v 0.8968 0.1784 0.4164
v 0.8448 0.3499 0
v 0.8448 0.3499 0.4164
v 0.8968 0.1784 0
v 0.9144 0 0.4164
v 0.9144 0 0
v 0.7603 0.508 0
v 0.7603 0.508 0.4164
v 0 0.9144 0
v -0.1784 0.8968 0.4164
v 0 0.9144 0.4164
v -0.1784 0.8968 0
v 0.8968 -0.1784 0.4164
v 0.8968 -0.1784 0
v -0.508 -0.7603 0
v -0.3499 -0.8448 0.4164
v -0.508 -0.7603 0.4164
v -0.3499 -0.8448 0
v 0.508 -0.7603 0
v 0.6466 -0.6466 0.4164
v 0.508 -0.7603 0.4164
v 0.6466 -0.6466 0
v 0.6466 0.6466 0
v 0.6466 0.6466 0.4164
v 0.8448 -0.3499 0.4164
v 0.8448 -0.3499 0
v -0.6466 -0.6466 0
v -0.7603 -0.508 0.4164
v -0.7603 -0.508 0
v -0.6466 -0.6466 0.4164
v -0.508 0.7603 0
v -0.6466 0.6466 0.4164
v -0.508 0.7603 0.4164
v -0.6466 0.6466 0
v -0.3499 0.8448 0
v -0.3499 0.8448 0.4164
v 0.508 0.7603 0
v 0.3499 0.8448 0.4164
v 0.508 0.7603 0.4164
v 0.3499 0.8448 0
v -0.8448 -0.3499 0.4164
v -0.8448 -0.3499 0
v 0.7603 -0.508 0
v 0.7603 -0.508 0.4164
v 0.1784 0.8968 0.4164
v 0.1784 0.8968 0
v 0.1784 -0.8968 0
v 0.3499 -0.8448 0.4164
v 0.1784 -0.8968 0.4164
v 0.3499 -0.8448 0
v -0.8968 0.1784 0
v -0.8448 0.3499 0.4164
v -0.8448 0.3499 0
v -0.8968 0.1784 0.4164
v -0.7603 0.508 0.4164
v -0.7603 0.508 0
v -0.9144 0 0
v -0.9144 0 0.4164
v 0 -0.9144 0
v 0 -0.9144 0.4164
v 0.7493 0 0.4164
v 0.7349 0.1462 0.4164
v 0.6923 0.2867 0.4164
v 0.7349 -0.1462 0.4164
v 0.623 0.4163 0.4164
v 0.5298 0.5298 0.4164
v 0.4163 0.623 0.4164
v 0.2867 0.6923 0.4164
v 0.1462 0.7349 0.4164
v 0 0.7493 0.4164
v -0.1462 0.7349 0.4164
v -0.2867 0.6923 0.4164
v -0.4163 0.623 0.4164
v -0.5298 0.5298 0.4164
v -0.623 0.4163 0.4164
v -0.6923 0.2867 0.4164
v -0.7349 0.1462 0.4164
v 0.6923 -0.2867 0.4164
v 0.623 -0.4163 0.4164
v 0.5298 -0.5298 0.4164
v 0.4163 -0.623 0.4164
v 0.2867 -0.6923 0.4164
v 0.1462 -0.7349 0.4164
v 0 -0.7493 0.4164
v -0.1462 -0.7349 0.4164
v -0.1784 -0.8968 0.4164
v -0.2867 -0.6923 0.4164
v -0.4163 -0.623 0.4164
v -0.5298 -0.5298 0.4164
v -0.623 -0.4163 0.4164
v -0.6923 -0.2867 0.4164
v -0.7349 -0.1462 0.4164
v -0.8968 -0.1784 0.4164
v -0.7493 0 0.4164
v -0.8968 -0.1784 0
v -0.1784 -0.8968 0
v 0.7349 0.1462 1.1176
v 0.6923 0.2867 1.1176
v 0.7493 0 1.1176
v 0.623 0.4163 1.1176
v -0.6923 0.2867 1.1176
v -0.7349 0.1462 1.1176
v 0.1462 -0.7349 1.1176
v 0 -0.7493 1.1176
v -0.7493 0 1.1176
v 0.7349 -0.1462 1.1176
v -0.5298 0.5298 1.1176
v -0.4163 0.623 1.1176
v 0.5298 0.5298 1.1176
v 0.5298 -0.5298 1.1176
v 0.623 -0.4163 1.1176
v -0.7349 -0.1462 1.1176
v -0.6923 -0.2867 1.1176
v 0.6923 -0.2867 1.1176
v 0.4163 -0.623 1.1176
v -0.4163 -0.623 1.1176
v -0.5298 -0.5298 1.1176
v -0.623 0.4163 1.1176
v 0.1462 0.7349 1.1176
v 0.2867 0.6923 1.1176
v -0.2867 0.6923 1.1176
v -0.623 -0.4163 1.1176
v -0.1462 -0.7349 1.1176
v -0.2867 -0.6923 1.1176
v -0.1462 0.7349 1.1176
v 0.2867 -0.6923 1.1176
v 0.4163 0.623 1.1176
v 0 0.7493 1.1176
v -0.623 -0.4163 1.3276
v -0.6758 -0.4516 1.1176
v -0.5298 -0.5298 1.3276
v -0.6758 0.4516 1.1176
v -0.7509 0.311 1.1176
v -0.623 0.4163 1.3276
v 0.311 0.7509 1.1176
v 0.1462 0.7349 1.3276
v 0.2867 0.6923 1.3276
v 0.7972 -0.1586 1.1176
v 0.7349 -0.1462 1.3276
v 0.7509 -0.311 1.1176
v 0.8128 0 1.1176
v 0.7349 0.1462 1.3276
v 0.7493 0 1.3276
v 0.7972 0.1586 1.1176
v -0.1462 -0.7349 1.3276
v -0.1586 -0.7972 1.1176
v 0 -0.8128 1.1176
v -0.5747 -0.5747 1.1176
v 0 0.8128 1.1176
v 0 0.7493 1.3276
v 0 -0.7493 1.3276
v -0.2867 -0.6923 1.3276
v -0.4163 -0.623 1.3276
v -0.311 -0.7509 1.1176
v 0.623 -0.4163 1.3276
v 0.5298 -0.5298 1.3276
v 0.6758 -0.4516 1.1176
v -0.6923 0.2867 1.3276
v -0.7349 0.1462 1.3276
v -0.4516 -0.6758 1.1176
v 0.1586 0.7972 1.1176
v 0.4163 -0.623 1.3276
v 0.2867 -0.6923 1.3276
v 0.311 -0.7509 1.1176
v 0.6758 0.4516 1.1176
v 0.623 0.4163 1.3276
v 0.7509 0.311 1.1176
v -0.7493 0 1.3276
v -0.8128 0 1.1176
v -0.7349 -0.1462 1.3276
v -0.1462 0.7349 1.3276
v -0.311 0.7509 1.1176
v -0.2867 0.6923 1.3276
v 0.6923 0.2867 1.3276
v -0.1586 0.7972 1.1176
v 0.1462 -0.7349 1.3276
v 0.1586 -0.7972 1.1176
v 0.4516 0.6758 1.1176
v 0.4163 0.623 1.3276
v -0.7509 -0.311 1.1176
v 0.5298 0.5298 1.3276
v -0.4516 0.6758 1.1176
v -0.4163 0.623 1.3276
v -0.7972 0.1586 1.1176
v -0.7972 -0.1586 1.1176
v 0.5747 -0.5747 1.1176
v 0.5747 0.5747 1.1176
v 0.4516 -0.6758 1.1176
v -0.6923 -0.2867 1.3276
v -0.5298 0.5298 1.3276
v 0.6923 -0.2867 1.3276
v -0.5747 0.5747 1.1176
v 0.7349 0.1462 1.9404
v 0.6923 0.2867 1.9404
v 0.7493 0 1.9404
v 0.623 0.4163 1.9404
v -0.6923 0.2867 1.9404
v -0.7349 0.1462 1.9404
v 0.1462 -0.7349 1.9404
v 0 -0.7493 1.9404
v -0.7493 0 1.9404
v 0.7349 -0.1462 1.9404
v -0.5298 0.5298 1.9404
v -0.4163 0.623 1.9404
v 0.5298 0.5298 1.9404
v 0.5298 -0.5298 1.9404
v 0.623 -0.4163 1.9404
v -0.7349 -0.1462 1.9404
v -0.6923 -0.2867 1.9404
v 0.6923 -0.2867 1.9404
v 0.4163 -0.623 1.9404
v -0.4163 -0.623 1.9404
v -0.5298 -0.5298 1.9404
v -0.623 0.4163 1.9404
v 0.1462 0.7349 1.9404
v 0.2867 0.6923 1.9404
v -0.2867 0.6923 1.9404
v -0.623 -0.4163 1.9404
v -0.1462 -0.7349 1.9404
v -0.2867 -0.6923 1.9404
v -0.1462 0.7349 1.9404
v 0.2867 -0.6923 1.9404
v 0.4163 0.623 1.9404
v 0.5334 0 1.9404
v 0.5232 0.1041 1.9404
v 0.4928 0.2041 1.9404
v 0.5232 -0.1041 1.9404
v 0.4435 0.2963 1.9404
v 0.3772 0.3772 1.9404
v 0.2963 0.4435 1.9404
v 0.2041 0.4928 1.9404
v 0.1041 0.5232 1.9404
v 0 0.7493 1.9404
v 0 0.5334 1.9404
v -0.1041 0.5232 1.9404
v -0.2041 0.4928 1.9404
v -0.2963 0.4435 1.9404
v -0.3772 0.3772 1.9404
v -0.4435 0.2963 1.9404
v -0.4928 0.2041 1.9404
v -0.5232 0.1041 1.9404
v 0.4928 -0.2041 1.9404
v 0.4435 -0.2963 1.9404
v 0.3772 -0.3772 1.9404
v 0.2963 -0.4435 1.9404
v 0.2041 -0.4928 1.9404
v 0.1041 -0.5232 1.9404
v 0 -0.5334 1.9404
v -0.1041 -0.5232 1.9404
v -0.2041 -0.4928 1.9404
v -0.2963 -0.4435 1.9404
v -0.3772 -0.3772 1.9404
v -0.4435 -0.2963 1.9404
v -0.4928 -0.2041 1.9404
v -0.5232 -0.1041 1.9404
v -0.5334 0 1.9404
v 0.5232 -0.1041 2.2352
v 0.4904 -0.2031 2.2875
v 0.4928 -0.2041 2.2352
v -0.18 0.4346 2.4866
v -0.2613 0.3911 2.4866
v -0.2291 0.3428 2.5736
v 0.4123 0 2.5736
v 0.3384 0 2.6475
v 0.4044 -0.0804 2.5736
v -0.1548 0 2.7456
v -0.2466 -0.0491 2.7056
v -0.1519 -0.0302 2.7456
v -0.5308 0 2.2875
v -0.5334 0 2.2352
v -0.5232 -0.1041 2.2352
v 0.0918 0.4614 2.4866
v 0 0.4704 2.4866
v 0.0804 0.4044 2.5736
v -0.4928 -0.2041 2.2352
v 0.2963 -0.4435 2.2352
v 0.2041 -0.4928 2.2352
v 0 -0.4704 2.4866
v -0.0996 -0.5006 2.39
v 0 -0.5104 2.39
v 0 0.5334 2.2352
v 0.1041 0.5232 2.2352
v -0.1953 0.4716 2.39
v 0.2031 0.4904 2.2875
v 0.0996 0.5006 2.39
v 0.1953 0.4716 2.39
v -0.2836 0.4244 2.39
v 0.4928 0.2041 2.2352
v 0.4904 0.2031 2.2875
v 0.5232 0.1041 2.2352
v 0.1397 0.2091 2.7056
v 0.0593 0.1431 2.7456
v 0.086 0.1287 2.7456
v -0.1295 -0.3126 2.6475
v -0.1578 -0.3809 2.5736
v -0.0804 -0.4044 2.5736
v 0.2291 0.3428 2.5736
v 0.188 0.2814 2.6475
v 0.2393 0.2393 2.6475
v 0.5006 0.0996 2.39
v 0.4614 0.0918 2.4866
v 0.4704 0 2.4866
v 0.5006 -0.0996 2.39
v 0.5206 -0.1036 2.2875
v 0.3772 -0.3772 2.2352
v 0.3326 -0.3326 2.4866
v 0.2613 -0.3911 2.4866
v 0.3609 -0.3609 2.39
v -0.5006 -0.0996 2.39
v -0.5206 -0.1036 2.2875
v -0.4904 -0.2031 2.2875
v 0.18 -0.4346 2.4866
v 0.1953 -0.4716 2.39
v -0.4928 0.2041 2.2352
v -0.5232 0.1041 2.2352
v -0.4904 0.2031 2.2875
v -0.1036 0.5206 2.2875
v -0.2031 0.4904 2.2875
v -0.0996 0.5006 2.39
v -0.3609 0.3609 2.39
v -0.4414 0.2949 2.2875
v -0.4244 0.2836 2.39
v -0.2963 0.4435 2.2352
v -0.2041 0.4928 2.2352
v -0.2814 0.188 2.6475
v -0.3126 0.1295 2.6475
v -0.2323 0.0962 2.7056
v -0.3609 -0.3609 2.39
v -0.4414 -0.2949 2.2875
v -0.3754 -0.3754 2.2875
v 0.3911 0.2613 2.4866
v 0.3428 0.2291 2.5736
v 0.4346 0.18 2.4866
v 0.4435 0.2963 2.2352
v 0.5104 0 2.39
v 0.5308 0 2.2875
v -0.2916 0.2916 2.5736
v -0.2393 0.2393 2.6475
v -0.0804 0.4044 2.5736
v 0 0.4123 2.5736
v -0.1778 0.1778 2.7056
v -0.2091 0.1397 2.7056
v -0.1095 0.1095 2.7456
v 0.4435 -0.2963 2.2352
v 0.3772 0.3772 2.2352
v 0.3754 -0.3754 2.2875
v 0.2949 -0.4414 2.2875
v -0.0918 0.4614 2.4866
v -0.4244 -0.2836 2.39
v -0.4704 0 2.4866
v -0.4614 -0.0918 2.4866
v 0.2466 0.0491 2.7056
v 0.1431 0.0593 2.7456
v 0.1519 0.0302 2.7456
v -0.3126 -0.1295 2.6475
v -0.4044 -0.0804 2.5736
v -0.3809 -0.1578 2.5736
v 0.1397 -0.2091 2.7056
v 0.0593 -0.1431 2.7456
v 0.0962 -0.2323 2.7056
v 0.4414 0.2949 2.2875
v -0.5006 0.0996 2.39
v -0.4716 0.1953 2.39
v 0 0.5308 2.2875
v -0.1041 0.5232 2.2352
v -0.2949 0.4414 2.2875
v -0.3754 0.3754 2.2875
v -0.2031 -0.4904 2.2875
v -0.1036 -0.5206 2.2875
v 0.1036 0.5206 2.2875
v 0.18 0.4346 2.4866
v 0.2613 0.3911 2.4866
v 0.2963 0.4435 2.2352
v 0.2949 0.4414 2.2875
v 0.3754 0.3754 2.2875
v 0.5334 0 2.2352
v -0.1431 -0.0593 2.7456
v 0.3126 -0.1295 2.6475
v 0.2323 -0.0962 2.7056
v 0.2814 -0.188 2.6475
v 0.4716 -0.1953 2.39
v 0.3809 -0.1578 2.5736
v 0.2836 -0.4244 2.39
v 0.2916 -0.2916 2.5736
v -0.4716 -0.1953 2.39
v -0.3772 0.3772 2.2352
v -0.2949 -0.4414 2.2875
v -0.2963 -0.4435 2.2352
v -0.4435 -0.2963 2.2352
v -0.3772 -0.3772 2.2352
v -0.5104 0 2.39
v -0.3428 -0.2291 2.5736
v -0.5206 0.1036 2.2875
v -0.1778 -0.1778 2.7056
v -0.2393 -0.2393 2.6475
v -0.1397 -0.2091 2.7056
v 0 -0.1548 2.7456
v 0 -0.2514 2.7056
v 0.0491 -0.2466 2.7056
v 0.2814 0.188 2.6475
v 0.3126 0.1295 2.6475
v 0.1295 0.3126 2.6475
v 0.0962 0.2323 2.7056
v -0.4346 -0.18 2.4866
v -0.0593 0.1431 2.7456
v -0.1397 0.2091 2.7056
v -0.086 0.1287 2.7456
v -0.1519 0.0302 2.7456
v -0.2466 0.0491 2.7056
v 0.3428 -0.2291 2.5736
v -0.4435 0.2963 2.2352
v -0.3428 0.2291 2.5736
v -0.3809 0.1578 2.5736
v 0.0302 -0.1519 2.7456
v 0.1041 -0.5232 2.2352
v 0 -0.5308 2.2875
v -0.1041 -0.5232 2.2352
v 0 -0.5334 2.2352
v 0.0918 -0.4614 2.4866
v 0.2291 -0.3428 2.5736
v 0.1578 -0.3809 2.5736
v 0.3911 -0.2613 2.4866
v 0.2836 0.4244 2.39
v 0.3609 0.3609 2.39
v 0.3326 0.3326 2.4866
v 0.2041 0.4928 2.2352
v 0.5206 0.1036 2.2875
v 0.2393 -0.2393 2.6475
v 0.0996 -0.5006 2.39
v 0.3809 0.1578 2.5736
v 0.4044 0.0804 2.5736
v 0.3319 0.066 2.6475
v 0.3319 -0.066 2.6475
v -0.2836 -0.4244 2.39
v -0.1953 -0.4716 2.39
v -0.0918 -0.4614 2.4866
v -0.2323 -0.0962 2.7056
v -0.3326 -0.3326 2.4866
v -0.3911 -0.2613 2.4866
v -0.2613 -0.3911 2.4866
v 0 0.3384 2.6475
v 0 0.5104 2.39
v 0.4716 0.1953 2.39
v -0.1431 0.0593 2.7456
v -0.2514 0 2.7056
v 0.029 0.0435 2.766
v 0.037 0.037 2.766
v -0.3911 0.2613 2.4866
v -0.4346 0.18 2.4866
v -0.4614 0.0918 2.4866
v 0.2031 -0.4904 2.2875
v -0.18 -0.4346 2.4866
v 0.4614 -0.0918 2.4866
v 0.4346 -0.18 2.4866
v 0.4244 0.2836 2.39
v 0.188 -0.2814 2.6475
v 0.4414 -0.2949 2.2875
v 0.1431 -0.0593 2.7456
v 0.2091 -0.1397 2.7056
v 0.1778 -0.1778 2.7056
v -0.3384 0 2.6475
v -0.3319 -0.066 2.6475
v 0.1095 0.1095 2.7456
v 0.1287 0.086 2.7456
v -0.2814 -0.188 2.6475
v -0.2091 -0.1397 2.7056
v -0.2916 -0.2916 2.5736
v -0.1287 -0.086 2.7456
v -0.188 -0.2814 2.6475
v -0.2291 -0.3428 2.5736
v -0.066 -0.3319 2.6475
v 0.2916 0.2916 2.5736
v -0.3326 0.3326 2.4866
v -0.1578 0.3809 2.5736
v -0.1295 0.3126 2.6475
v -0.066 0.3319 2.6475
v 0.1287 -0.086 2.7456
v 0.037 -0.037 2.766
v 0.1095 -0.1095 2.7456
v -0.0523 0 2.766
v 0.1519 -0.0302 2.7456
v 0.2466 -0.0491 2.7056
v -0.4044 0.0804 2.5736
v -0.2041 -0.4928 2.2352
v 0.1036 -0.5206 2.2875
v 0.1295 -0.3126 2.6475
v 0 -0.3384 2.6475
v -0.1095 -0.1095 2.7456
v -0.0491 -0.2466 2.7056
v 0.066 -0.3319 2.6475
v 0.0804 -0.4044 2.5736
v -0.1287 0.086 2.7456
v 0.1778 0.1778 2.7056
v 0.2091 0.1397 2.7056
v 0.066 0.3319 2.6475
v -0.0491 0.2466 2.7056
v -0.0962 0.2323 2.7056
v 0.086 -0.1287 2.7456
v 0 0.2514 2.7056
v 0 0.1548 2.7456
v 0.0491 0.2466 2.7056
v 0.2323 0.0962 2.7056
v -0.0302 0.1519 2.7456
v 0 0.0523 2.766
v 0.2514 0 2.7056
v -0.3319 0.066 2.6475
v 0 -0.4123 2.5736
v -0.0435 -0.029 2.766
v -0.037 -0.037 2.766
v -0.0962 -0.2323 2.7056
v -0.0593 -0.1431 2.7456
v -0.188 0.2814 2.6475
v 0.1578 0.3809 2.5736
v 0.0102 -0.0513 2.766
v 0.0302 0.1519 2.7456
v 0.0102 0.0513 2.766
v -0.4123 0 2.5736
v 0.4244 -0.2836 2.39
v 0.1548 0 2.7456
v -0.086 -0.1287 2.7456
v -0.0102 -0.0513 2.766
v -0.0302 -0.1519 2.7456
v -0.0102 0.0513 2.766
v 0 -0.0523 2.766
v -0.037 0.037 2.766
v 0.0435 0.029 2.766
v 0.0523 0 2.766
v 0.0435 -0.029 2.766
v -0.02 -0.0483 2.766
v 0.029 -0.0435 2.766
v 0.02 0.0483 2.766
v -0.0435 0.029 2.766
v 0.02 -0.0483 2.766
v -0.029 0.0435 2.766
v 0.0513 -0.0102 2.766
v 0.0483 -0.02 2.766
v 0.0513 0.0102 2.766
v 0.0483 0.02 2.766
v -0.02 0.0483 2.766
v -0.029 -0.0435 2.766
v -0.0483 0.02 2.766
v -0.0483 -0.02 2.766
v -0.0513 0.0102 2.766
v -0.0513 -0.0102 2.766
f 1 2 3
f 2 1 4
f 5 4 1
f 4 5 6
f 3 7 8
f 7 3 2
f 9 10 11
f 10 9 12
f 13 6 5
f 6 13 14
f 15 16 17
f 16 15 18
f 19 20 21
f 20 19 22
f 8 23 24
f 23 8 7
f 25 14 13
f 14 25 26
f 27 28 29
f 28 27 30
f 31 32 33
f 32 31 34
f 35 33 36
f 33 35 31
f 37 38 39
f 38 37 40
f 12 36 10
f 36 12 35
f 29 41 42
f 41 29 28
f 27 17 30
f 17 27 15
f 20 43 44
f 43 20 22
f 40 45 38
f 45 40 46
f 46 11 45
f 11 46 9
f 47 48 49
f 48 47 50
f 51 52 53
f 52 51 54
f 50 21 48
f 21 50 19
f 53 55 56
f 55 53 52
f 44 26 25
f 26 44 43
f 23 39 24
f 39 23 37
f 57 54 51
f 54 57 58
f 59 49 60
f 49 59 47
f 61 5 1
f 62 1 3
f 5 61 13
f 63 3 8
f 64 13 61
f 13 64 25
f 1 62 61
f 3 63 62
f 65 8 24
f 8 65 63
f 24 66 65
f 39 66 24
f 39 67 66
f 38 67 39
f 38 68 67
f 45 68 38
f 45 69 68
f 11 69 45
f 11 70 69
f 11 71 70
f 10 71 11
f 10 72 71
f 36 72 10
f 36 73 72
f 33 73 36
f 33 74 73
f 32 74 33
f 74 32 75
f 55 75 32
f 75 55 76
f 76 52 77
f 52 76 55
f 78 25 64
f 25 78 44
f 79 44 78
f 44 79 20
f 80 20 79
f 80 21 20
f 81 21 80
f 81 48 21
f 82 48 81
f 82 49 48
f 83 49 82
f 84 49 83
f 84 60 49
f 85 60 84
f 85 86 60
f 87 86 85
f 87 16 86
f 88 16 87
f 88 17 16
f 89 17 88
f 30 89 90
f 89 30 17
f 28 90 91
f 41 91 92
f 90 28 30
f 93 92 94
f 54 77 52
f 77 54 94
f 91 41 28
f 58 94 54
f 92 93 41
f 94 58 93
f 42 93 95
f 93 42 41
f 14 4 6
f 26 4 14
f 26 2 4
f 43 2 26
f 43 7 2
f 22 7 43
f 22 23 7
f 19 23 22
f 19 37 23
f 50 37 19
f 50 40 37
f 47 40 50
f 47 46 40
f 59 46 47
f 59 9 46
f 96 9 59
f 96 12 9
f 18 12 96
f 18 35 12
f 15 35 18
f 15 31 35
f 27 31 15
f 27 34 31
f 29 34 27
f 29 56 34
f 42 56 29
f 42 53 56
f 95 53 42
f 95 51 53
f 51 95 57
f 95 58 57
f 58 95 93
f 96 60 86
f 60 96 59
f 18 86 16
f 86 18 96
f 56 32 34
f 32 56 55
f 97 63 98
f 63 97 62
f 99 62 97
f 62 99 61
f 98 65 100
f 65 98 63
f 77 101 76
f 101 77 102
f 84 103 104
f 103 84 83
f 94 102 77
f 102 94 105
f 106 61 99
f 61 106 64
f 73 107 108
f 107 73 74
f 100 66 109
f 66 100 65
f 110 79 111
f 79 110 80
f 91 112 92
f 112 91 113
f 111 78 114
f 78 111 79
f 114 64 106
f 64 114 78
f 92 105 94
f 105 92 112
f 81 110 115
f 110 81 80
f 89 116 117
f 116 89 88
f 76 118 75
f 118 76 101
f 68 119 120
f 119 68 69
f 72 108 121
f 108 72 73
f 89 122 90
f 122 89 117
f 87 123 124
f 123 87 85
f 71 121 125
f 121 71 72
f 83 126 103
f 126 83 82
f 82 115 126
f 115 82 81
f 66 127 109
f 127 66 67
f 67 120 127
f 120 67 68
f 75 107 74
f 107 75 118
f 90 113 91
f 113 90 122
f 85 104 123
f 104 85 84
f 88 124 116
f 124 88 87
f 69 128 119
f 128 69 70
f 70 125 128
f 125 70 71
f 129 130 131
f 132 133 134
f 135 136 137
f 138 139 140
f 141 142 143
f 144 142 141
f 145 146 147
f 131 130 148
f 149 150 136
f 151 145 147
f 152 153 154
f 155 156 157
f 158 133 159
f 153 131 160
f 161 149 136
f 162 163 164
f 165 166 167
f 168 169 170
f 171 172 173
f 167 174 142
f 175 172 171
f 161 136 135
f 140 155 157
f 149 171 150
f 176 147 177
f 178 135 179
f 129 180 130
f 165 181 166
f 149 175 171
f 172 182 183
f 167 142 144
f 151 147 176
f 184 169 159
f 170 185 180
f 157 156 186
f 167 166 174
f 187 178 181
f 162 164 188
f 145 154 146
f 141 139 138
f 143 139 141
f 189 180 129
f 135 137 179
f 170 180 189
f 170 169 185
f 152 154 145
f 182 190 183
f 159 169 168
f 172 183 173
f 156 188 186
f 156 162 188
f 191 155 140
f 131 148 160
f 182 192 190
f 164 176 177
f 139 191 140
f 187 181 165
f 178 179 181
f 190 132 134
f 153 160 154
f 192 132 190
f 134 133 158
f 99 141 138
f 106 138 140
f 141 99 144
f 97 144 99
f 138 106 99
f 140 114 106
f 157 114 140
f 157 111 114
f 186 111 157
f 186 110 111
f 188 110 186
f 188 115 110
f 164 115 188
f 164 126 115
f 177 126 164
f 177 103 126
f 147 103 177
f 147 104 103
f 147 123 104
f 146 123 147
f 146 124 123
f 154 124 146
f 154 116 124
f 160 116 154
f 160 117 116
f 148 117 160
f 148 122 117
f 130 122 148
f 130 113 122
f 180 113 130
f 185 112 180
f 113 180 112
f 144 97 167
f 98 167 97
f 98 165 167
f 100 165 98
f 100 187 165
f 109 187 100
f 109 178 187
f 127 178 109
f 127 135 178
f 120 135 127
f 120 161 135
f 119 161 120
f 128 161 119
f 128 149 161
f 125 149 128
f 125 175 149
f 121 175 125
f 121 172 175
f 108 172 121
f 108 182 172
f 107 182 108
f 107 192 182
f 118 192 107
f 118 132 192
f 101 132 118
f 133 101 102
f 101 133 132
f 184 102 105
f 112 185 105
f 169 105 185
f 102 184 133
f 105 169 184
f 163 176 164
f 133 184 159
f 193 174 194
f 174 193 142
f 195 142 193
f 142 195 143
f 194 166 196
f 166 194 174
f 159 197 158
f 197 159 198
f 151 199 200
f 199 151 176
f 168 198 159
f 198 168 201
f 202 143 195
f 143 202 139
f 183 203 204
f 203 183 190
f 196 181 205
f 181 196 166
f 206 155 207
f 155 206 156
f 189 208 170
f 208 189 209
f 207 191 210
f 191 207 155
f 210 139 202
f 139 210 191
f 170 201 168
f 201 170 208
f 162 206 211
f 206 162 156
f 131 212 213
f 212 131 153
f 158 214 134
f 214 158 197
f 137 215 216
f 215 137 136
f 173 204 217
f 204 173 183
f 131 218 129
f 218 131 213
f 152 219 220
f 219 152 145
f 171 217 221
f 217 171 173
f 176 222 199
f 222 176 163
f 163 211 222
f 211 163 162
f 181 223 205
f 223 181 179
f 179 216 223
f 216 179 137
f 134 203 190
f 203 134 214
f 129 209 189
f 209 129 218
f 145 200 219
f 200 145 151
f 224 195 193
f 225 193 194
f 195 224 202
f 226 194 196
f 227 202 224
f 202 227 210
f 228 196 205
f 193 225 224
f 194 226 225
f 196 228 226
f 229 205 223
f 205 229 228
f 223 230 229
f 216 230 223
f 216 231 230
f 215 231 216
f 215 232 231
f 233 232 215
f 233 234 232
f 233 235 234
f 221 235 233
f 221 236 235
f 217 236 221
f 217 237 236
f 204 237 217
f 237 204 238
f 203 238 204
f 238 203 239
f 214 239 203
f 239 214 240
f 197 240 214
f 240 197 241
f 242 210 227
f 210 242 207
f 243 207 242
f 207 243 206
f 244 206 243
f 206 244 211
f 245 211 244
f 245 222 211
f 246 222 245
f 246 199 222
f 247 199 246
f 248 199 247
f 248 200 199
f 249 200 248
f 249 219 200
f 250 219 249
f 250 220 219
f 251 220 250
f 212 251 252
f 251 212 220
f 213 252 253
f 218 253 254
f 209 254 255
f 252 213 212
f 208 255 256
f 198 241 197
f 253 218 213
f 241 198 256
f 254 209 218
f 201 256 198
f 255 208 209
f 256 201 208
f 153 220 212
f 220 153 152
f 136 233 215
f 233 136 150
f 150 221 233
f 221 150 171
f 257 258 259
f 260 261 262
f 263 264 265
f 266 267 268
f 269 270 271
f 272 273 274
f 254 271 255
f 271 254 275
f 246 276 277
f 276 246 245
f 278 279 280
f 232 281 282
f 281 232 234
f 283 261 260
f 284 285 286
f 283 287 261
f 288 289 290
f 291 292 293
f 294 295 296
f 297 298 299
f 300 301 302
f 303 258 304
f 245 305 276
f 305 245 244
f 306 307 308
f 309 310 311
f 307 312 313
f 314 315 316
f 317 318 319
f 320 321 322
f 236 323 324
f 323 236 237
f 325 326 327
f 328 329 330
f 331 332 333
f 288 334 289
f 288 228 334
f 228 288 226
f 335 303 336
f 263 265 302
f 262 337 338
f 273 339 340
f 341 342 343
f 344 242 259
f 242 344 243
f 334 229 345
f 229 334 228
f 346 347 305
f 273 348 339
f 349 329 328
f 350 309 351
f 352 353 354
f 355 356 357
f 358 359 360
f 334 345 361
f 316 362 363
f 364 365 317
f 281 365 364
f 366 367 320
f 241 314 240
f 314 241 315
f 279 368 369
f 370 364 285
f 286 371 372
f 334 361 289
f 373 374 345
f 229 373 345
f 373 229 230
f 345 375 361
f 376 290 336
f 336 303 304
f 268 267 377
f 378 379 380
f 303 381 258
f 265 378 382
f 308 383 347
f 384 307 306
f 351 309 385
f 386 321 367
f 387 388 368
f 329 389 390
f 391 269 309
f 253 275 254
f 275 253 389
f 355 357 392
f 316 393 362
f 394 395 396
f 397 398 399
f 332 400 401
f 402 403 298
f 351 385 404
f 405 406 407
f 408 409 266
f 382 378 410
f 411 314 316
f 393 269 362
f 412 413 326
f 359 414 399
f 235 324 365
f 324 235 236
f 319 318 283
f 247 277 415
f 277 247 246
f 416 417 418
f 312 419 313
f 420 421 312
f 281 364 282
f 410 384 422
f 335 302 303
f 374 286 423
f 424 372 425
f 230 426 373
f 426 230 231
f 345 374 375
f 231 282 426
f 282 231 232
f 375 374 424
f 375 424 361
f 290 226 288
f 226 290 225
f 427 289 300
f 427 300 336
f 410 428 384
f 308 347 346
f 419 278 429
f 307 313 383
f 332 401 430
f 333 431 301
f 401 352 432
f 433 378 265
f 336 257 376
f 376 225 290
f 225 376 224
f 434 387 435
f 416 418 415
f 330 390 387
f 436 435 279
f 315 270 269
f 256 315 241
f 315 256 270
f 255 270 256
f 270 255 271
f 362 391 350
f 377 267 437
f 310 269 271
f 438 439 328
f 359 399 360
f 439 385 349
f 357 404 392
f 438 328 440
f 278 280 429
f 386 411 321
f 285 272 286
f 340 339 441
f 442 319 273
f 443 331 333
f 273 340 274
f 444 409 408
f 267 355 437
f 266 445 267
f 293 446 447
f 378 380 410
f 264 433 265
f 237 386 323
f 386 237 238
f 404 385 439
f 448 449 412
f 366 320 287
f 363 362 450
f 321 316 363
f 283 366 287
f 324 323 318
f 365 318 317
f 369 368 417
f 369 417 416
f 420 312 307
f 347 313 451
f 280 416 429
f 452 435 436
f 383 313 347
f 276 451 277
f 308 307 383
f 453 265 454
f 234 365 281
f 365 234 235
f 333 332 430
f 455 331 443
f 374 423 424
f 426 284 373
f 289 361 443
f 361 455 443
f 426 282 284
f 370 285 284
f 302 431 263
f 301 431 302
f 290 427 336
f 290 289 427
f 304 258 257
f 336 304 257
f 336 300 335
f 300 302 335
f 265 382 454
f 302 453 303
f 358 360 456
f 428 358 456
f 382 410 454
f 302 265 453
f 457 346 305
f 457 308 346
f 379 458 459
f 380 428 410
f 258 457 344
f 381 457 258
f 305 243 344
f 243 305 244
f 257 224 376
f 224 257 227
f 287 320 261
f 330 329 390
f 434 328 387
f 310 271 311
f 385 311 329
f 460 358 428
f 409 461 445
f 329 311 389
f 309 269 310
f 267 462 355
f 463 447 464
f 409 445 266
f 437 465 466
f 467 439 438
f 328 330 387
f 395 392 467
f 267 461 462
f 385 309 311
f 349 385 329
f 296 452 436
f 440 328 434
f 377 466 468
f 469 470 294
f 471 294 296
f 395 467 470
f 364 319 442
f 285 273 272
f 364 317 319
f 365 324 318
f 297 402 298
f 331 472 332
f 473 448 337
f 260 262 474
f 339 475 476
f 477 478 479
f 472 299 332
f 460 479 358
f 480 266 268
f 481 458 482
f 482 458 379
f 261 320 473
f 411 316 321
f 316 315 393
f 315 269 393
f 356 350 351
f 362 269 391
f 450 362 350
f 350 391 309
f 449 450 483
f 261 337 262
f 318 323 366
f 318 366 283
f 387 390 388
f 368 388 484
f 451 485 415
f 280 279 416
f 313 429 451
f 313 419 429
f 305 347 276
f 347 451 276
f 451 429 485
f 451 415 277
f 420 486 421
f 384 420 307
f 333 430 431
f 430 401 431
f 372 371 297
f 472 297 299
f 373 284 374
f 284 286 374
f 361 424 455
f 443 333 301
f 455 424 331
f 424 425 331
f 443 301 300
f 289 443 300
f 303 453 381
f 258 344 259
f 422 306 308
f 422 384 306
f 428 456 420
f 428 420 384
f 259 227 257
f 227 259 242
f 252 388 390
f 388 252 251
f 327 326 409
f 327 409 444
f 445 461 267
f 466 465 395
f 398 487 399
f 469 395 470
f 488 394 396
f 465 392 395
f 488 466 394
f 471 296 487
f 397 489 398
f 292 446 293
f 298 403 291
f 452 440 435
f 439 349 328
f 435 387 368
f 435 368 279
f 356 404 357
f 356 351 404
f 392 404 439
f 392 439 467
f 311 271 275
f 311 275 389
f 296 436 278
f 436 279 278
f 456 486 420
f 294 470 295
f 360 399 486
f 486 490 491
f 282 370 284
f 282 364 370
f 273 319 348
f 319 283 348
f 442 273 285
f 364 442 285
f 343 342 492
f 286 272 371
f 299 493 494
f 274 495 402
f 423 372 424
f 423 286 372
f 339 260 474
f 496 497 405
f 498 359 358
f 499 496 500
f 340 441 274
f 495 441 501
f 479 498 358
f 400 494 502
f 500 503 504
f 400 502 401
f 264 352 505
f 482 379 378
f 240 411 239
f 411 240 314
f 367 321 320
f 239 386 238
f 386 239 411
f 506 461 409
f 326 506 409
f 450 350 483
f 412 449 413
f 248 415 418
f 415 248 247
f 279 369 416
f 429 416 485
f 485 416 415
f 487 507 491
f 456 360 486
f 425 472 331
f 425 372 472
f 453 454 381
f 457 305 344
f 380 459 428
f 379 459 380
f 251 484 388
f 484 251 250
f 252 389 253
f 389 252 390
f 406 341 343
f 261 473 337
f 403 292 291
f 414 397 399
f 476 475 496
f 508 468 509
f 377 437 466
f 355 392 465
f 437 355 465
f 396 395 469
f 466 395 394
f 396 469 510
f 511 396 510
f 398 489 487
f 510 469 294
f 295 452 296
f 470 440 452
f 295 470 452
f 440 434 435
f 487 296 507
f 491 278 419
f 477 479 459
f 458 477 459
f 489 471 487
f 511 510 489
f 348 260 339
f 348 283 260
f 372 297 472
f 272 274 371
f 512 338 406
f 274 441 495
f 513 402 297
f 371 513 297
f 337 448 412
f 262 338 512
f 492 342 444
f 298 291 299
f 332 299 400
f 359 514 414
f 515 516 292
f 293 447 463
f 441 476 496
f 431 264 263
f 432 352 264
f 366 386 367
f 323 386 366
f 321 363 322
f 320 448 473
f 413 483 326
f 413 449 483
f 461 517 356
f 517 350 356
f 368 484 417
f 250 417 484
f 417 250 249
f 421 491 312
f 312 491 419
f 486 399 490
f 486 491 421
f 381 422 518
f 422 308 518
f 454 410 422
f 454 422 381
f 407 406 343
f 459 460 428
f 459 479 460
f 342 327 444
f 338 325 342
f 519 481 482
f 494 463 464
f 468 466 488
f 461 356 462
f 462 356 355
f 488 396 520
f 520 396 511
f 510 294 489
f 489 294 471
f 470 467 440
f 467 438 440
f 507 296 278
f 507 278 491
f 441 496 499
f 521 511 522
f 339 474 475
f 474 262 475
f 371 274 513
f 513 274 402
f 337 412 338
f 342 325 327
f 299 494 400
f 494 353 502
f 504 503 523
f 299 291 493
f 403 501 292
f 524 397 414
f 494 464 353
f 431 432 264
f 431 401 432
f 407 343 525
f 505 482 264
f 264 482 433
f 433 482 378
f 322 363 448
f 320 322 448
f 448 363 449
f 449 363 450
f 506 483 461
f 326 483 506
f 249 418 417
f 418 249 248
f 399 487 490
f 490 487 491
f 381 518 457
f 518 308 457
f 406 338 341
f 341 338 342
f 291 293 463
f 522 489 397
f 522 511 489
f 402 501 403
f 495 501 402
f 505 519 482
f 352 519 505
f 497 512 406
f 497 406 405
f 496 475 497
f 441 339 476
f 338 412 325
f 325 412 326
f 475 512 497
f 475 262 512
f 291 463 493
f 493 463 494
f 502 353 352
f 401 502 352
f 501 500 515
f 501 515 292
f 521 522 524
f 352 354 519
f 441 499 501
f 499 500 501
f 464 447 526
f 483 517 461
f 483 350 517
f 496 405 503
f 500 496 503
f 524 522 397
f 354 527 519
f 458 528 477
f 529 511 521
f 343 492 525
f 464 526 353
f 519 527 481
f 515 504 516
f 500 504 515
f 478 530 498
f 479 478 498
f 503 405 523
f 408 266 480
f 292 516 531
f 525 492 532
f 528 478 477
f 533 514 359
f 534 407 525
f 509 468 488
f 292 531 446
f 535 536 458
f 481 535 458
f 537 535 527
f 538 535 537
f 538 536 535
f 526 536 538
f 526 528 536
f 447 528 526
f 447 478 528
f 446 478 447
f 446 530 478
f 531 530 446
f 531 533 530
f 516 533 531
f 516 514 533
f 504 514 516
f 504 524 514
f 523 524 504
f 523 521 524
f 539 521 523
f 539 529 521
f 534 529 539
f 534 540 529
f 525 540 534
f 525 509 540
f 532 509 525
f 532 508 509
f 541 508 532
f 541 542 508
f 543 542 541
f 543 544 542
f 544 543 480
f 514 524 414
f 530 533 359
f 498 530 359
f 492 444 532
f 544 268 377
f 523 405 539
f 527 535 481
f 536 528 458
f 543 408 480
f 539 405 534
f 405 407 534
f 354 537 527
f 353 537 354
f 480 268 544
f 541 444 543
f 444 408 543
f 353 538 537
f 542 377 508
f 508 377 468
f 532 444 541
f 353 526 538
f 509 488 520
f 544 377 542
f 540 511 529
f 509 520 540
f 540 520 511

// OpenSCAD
// starting from top of data sheet drawing to bottom

piston_d = 0.042 * 25.4;
neck_d = 0.059 * 25.4;

shoulder_d = 0.064 * 25.4;
trunk_d = neck_d; // not marked on data sheet, assumed
smd_flange_d = 0.072 * 25.4;


piston_h = 0.024 * 25.4; // max stroke, mid stroke is half
neck_h = 0.6128;
shoulder_h = 0.2;
trunk_h = 0.028 * 25.4;
smd_flange_h = 0.016 * 25.4;

ff = 0.01;

$fn=32;

translate([0, 0, 0]) cylinder(d=smd_flange_d, h=smd_flange_h+ff);
translate([0, 0, smd_flange_h]) cylinder(d=trunk_d, h=trunk_h+ff);
translate([0, 0, smd_flange_h + trunk_h]) cylinder(d1=shoulder_d, d2=neck_d, h=shoulder_h+ff);
translate([0, 0, smd_flange_h + trunk_h + shoulder_h]) cylinder(d=neck_d, h=neck_h+ff);
translate([0, 0, smd_flange_h + trunk_h + shoulder_h + neck_h]) {
  hull() {
    cylinder(d=piston_d, h=piston_h/2);
    translate([0, 0, piston_h/2]) sphere(d=piston_d);
  }
}
